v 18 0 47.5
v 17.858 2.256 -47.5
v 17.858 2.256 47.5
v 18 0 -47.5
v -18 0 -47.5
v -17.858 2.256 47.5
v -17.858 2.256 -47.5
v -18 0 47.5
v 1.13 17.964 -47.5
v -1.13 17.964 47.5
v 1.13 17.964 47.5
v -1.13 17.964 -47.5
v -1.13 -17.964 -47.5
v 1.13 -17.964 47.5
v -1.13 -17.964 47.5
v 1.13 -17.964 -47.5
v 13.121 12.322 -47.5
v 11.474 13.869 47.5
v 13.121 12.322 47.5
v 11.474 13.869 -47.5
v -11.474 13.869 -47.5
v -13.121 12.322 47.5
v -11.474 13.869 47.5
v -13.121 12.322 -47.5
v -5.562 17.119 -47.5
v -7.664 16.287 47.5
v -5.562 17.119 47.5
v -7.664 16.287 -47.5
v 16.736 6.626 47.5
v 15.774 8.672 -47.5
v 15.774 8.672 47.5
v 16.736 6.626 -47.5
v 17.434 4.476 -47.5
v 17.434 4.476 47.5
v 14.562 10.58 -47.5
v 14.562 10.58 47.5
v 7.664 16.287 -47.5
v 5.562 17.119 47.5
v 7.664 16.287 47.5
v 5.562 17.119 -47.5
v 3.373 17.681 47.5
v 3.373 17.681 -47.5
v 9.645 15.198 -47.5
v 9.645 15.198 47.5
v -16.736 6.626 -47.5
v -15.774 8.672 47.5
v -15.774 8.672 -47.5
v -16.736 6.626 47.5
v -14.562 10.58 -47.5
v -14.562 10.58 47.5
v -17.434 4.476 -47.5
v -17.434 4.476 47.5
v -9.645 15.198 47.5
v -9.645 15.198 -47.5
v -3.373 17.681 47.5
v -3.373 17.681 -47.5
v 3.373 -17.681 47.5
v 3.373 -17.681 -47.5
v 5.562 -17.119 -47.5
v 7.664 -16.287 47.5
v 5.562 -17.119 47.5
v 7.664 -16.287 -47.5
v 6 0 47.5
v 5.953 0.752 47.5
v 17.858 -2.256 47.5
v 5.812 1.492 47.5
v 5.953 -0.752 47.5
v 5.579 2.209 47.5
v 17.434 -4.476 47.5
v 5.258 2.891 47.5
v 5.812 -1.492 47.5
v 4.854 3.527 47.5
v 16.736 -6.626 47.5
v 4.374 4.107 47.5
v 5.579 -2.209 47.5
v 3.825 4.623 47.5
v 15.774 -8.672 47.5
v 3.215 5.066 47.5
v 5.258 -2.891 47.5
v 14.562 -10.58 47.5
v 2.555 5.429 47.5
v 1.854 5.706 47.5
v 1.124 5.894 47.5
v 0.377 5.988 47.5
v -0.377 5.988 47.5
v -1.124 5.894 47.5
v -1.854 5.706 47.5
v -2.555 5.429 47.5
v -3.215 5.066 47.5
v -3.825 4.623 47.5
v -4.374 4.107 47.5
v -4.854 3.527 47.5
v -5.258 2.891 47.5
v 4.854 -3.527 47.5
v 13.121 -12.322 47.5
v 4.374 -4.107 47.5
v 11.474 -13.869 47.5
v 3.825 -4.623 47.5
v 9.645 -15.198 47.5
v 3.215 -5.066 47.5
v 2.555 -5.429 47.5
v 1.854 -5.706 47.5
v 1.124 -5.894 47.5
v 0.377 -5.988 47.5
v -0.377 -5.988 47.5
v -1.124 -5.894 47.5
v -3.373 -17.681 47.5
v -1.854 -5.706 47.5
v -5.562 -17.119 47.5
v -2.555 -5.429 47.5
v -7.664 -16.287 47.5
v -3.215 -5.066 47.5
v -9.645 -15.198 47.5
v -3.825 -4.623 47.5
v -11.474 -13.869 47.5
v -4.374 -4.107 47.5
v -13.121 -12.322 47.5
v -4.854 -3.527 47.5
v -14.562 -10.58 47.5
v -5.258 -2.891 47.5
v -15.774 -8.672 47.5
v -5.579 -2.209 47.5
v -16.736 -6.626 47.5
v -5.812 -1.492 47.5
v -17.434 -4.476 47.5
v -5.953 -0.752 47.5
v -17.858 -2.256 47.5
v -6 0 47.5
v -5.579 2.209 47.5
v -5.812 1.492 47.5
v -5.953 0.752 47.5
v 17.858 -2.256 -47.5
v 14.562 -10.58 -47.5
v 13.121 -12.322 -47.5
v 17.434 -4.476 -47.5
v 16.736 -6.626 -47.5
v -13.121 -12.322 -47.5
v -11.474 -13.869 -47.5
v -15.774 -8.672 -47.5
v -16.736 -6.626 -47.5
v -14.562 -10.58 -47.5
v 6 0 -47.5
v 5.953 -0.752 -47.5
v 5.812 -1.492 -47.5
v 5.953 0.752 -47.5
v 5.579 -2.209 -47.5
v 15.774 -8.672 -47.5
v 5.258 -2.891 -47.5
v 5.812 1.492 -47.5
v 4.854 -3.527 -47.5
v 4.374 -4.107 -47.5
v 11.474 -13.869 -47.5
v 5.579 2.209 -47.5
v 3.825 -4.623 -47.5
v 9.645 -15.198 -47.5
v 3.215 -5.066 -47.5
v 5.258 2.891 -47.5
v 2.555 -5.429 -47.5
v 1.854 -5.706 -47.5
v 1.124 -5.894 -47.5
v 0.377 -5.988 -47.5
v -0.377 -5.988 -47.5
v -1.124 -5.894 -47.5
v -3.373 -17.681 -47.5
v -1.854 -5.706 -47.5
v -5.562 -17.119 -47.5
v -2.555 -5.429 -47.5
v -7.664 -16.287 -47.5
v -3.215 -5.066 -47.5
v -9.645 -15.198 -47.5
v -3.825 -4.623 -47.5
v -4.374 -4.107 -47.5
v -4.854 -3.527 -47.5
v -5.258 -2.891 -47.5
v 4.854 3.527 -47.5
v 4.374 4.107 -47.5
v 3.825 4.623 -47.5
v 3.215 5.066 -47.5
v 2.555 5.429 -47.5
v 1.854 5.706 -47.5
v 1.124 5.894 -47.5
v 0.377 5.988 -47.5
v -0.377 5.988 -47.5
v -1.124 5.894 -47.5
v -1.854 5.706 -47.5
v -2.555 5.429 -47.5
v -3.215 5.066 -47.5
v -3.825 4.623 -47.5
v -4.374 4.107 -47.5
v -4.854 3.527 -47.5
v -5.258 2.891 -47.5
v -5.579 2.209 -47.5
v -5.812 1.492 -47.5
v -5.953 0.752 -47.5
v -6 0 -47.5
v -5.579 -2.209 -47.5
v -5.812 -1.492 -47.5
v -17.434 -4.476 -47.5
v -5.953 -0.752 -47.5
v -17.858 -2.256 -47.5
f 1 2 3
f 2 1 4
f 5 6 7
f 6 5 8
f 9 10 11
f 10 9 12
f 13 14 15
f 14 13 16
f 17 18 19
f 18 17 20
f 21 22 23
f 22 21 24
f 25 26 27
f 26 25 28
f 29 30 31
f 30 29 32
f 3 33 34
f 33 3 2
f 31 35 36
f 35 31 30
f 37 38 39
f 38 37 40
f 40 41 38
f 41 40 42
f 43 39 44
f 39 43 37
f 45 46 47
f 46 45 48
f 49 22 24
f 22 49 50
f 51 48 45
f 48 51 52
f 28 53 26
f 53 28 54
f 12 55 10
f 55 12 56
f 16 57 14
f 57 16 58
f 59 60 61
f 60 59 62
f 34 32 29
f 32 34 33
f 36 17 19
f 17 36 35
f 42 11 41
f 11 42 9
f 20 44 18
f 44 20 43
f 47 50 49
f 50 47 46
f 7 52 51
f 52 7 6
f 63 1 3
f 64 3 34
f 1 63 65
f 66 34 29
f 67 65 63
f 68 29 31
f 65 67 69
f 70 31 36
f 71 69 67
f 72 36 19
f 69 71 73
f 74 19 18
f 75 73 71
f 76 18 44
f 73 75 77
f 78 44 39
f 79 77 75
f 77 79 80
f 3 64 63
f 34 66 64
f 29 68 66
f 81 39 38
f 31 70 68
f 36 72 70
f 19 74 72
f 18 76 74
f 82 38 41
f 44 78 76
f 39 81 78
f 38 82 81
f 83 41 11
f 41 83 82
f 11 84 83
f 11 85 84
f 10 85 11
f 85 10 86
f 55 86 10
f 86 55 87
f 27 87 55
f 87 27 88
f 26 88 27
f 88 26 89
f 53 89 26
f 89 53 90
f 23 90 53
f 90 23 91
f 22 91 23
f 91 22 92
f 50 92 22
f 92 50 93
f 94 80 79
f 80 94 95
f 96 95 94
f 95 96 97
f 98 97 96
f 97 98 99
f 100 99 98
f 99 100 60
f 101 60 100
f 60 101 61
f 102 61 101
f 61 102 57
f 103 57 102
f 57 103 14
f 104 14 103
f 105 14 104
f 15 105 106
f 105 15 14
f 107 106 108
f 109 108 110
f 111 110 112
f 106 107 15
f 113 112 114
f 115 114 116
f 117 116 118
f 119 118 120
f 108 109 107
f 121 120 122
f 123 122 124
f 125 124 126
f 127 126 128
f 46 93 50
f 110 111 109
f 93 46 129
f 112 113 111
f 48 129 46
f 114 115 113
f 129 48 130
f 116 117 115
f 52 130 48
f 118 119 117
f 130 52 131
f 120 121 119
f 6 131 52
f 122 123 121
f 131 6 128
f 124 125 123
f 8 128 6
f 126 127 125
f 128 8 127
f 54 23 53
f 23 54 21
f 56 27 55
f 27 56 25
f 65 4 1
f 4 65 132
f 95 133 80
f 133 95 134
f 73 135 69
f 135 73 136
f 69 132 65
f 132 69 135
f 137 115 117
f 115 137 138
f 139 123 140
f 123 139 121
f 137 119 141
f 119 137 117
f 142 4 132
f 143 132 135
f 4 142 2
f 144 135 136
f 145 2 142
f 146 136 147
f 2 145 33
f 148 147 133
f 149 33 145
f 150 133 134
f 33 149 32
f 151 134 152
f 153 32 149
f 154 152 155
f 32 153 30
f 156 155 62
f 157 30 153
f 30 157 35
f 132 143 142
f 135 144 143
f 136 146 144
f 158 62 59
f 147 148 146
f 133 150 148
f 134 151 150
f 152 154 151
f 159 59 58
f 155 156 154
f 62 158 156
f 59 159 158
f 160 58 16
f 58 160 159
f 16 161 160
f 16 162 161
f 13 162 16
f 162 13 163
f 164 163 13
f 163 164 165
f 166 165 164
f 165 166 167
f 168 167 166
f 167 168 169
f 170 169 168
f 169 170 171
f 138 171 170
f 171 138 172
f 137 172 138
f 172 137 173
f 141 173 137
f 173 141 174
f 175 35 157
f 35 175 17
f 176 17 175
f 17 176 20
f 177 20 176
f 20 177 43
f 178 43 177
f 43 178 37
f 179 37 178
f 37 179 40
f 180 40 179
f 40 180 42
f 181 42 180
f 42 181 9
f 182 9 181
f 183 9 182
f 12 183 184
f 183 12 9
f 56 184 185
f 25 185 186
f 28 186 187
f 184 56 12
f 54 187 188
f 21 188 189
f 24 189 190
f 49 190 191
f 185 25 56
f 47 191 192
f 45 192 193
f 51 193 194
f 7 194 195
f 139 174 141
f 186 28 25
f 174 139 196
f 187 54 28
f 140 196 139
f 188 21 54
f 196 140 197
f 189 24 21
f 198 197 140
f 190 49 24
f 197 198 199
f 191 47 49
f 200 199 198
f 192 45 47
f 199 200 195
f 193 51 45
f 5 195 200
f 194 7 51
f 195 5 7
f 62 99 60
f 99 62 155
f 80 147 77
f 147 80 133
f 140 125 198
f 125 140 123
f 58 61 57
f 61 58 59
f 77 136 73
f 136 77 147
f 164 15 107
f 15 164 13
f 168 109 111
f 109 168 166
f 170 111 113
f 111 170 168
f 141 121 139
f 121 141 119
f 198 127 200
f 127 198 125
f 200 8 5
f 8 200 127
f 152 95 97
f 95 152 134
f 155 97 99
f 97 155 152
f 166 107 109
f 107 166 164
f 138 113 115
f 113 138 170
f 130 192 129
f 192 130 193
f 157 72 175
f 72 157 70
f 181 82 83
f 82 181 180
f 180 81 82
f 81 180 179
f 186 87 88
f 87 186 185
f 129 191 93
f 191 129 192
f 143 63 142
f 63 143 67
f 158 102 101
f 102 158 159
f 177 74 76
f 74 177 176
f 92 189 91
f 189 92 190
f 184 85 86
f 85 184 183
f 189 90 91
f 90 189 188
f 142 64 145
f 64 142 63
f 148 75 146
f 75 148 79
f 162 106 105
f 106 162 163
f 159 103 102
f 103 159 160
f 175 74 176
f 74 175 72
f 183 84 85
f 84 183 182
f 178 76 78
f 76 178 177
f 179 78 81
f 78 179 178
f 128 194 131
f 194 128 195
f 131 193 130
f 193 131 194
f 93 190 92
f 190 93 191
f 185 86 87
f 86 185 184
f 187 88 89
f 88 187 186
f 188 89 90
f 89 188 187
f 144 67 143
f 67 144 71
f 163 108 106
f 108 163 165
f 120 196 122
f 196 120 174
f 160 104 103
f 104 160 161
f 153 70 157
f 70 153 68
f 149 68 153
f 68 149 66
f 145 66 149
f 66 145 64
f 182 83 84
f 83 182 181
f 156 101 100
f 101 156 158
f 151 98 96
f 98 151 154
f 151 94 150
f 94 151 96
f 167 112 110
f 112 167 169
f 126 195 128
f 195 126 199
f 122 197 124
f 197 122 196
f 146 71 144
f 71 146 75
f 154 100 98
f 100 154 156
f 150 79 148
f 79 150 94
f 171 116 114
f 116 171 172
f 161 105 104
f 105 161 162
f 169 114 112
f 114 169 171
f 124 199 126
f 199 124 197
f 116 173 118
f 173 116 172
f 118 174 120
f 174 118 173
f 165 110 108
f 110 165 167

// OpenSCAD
$fn = 50;


difference() {
	union() {
		translate(v = [0, 0, -47.5000000000]) {
			cylinder(h = 95, r = 18.0000000000);
		}
	}
	union() {
		translate(v = [0, 0, -100.0000000000]) {
			cylinder(h = 200, r = 6);
		}
	}
}
